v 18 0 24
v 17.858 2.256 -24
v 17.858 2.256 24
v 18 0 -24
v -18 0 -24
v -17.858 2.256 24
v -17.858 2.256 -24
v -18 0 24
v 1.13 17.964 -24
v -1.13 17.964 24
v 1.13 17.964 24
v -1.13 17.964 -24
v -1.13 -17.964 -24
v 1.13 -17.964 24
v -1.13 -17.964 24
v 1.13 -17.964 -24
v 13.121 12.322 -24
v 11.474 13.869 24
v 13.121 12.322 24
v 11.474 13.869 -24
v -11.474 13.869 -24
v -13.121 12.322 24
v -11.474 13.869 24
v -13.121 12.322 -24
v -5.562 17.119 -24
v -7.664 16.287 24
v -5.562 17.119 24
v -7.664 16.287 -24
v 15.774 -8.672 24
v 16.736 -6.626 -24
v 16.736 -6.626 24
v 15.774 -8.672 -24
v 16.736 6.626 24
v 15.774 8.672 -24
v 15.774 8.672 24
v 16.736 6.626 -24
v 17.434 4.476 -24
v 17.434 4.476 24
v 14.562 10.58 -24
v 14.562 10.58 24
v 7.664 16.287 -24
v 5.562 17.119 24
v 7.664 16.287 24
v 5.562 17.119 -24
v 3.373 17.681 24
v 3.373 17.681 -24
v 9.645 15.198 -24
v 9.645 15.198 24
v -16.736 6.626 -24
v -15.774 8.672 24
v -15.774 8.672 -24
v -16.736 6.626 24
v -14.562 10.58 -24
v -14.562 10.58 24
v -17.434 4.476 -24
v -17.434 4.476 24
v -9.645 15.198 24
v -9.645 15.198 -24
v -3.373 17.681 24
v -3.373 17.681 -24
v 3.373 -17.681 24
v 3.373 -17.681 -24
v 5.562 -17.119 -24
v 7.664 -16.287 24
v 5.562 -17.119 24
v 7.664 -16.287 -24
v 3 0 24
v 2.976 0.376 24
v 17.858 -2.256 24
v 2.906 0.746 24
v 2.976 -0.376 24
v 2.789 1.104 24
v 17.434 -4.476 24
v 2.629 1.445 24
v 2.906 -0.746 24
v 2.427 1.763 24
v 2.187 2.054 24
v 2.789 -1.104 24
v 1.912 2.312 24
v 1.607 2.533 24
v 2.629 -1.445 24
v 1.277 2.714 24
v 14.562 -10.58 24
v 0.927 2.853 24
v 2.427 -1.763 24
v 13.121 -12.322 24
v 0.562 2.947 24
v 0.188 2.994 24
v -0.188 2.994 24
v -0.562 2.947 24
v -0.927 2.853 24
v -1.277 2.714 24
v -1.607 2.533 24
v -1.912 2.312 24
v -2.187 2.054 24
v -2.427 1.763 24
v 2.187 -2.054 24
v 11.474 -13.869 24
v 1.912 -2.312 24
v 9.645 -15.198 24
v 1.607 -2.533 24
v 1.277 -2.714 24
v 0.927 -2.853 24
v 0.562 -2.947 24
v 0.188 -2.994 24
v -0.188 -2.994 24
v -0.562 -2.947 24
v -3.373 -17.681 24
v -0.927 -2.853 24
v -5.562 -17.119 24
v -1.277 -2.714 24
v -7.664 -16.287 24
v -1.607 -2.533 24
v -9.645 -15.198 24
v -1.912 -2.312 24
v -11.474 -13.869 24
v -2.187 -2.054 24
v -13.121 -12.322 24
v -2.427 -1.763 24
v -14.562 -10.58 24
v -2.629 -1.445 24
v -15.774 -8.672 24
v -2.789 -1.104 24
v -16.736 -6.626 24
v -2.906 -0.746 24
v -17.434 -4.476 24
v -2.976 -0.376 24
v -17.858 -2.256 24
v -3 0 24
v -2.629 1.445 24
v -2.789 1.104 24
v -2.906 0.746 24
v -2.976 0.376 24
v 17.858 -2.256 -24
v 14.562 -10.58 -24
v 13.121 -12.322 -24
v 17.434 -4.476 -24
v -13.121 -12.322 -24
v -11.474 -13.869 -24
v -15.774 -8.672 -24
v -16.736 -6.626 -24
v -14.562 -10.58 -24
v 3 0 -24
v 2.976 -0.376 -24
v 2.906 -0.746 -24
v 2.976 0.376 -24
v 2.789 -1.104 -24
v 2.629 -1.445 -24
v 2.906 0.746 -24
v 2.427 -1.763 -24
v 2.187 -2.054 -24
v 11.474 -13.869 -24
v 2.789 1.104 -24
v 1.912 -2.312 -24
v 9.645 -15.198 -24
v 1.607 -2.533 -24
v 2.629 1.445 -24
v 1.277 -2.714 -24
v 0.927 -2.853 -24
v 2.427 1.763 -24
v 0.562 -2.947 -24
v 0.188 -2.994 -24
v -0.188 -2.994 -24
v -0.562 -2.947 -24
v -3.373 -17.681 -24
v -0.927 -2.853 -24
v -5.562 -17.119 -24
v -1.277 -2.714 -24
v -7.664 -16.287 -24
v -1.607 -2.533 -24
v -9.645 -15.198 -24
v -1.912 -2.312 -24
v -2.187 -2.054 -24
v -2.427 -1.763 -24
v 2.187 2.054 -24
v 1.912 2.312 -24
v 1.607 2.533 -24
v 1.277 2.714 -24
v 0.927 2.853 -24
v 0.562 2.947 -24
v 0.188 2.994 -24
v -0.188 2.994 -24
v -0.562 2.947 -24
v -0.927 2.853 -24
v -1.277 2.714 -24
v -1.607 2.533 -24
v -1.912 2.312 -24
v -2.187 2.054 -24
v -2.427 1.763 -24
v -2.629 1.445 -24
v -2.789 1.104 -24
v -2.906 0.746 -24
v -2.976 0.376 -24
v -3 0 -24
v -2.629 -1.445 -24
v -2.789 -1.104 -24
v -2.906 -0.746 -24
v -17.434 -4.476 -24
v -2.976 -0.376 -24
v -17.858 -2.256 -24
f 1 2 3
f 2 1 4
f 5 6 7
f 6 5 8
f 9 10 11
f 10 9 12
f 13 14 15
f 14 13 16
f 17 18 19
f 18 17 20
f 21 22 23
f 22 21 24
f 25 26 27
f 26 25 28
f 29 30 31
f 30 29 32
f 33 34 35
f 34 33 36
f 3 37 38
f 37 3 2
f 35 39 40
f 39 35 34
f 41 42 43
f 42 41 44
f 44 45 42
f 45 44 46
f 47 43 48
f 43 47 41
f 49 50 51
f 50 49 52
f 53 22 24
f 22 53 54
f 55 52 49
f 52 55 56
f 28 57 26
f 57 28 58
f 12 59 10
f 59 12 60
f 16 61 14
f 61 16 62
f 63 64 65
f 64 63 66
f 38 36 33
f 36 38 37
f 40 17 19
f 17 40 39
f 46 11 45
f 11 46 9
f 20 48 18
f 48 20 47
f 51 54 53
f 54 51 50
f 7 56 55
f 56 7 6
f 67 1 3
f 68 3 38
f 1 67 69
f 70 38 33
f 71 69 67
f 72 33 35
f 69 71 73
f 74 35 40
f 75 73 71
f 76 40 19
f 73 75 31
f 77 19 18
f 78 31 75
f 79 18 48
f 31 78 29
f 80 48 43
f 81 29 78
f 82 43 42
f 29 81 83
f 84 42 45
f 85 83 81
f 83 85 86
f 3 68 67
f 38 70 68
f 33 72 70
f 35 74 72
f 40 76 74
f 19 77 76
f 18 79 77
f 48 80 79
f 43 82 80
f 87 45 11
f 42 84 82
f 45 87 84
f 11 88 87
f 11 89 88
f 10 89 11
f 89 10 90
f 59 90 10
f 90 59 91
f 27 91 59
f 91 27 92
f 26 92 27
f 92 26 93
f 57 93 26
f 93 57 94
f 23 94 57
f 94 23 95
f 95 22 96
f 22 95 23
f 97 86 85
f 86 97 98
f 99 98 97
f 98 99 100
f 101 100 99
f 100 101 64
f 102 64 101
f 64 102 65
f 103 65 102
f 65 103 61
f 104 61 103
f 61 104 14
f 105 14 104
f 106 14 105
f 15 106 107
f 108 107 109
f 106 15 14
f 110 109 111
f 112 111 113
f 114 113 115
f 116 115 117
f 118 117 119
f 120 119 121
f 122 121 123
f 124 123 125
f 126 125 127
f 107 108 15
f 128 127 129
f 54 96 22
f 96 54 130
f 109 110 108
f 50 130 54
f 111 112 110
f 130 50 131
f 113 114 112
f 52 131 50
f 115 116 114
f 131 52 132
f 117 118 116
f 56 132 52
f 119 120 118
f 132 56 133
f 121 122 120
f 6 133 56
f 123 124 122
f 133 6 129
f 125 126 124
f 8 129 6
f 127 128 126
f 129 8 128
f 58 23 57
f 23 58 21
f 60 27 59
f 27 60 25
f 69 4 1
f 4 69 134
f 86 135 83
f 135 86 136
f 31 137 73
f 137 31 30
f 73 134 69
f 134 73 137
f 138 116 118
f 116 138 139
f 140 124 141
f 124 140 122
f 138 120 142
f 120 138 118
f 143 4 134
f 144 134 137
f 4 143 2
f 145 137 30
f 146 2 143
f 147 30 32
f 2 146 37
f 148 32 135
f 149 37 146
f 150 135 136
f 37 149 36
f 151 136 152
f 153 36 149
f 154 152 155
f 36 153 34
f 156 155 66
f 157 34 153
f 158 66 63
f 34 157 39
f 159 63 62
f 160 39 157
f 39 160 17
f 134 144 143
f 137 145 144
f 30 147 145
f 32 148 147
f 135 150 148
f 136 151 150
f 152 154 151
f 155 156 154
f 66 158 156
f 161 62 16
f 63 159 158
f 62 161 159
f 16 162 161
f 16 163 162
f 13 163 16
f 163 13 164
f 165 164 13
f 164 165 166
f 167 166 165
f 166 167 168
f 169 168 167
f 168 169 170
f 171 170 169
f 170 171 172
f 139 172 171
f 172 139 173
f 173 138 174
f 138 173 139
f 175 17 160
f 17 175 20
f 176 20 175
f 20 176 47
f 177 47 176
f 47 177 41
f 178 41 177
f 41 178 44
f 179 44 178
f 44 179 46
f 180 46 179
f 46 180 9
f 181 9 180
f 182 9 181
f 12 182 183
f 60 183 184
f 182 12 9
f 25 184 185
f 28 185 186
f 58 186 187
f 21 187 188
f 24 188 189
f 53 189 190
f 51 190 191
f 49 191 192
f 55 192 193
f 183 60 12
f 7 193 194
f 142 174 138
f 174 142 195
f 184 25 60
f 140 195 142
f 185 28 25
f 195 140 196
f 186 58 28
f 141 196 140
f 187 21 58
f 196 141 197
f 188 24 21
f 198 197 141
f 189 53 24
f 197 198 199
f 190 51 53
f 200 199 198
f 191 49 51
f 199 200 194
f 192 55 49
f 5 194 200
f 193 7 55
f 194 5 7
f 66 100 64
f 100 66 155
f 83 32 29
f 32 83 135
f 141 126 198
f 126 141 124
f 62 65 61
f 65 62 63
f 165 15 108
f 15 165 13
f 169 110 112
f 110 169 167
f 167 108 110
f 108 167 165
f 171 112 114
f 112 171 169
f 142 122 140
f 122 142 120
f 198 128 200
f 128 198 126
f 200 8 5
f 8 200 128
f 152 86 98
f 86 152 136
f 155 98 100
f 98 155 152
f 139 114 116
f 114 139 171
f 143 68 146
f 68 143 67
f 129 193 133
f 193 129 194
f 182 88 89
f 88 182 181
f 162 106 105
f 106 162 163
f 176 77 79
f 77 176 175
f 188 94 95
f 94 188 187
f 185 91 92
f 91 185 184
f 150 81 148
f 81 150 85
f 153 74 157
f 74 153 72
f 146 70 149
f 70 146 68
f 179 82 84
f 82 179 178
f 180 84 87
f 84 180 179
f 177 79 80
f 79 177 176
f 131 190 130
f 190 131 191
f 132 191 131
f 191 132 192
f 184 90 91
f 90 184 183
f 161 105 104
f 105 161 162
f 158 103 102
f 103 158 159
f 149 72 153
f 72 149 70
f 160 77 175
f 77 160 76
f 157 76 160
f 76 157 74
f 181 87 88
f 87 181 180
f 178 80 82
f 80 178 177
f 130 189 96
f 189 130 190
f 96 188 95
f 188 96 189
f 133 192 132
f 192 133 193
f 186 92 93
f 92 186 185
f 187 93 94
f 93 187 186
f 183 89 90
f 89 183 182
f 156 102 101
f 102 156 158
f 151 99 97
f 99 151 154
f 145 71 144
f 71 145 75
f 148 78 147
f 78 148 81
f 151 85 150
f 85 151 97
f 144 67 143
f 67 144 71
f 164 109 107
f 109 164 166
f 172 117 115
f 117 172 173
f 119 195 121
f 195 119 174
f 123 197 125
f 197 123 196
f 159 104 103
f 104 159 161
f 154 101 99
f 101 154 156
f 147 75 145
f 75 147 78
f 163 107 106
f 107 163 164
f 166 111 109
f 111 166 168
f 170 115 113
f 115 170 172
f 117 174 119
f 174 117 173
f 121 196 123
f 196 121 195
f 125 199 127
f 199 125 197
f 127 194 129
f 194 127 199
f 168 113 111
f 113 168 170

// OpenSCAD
$fn = 50;


difference() {
	union() {
		translate(v = [0, 0, -24.0000000000]) {
			cylinder(h = 48, r = 18.0000000000);
		}
	}
	union() {
		translate(v = [0, 0, -100.0000000000]) {
			cylinder(h = 200, r = 3.0000000000);
		}
	}
}
